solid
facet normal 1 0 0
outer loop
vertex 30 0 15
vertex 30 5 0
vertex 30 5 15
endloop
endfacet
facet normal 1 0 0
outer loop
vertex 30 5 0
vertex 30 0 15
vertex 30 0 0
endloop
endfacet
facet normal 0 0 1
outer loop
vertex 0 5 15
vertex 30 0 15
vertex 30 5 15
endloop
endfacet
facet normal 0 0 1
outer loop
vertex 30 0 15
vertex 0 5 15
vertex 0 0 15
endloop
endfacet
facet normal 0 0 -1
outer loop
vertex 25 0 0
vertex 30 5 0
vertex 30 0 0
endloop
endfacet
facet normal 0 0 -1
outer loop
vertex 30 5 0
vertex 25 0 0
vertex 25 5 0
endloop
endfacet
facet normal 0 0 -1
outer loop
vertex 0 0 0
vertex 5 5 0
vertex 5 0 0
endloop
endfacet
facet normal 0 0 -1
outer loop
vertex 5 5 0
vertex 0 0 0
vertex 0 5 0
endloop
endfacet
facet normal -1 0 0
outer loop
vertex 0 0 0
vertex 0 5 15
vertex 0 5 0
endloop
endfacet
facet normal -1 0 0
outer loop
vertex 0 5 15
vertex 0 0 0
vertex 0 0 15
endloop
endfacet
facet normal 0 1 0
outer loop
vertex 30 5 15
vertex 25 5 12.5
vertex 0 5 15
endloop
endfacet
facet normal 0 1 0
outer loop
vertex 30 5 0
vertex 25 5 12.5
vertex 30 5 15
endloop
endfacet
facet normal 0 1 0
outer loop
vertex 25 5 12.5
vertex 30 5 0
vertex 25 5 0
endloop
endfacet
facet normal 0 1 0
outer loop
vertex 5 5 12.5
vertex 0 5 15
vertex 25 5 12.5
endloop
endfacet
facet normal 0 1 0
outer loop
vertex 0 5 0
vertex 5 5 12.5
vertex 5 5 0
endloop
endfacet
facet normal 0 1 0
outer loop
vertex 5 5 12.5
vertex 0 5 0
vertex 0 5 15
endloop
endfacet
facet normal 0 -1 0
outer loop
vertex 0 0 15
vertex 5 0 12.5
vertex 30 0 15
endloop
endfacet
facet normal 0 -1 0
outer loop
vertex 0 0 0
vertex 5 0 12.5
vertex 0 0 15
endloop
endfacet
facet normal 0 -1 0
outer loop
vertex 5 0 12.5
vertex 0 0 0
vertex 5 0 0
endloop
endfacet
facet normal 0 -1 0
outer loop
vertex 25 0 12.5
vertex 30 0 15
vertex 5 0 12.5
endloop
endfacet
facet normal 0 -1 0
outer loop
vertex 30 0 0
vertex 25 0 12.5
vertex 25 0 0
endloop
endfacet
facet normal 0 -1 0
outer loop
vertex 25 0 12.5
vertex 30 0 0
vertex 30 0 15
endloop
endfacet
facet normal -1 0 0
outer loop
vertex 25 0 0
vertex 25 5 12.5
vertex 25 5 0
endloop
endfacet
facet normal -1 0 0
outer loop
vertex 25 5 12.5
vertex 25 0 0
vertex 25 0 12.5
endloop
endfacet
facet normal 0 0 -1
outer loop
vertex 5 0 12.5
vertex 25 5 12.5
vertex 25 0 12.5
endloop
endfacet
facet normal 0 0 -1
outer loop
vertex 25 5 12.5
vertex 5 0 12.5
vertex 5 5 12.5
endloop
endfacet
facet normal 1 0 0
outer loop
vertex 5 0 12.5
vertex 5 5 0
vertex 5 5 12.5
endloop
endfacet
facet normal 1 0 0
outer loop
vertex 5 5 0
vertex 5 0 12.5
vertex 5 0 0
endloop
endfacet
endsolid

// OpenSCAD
module model(){
    difference(){
        cube([30,5,15]);
        translate([5,0,0])cube([20,25,12.5]);
    }
}
model();
